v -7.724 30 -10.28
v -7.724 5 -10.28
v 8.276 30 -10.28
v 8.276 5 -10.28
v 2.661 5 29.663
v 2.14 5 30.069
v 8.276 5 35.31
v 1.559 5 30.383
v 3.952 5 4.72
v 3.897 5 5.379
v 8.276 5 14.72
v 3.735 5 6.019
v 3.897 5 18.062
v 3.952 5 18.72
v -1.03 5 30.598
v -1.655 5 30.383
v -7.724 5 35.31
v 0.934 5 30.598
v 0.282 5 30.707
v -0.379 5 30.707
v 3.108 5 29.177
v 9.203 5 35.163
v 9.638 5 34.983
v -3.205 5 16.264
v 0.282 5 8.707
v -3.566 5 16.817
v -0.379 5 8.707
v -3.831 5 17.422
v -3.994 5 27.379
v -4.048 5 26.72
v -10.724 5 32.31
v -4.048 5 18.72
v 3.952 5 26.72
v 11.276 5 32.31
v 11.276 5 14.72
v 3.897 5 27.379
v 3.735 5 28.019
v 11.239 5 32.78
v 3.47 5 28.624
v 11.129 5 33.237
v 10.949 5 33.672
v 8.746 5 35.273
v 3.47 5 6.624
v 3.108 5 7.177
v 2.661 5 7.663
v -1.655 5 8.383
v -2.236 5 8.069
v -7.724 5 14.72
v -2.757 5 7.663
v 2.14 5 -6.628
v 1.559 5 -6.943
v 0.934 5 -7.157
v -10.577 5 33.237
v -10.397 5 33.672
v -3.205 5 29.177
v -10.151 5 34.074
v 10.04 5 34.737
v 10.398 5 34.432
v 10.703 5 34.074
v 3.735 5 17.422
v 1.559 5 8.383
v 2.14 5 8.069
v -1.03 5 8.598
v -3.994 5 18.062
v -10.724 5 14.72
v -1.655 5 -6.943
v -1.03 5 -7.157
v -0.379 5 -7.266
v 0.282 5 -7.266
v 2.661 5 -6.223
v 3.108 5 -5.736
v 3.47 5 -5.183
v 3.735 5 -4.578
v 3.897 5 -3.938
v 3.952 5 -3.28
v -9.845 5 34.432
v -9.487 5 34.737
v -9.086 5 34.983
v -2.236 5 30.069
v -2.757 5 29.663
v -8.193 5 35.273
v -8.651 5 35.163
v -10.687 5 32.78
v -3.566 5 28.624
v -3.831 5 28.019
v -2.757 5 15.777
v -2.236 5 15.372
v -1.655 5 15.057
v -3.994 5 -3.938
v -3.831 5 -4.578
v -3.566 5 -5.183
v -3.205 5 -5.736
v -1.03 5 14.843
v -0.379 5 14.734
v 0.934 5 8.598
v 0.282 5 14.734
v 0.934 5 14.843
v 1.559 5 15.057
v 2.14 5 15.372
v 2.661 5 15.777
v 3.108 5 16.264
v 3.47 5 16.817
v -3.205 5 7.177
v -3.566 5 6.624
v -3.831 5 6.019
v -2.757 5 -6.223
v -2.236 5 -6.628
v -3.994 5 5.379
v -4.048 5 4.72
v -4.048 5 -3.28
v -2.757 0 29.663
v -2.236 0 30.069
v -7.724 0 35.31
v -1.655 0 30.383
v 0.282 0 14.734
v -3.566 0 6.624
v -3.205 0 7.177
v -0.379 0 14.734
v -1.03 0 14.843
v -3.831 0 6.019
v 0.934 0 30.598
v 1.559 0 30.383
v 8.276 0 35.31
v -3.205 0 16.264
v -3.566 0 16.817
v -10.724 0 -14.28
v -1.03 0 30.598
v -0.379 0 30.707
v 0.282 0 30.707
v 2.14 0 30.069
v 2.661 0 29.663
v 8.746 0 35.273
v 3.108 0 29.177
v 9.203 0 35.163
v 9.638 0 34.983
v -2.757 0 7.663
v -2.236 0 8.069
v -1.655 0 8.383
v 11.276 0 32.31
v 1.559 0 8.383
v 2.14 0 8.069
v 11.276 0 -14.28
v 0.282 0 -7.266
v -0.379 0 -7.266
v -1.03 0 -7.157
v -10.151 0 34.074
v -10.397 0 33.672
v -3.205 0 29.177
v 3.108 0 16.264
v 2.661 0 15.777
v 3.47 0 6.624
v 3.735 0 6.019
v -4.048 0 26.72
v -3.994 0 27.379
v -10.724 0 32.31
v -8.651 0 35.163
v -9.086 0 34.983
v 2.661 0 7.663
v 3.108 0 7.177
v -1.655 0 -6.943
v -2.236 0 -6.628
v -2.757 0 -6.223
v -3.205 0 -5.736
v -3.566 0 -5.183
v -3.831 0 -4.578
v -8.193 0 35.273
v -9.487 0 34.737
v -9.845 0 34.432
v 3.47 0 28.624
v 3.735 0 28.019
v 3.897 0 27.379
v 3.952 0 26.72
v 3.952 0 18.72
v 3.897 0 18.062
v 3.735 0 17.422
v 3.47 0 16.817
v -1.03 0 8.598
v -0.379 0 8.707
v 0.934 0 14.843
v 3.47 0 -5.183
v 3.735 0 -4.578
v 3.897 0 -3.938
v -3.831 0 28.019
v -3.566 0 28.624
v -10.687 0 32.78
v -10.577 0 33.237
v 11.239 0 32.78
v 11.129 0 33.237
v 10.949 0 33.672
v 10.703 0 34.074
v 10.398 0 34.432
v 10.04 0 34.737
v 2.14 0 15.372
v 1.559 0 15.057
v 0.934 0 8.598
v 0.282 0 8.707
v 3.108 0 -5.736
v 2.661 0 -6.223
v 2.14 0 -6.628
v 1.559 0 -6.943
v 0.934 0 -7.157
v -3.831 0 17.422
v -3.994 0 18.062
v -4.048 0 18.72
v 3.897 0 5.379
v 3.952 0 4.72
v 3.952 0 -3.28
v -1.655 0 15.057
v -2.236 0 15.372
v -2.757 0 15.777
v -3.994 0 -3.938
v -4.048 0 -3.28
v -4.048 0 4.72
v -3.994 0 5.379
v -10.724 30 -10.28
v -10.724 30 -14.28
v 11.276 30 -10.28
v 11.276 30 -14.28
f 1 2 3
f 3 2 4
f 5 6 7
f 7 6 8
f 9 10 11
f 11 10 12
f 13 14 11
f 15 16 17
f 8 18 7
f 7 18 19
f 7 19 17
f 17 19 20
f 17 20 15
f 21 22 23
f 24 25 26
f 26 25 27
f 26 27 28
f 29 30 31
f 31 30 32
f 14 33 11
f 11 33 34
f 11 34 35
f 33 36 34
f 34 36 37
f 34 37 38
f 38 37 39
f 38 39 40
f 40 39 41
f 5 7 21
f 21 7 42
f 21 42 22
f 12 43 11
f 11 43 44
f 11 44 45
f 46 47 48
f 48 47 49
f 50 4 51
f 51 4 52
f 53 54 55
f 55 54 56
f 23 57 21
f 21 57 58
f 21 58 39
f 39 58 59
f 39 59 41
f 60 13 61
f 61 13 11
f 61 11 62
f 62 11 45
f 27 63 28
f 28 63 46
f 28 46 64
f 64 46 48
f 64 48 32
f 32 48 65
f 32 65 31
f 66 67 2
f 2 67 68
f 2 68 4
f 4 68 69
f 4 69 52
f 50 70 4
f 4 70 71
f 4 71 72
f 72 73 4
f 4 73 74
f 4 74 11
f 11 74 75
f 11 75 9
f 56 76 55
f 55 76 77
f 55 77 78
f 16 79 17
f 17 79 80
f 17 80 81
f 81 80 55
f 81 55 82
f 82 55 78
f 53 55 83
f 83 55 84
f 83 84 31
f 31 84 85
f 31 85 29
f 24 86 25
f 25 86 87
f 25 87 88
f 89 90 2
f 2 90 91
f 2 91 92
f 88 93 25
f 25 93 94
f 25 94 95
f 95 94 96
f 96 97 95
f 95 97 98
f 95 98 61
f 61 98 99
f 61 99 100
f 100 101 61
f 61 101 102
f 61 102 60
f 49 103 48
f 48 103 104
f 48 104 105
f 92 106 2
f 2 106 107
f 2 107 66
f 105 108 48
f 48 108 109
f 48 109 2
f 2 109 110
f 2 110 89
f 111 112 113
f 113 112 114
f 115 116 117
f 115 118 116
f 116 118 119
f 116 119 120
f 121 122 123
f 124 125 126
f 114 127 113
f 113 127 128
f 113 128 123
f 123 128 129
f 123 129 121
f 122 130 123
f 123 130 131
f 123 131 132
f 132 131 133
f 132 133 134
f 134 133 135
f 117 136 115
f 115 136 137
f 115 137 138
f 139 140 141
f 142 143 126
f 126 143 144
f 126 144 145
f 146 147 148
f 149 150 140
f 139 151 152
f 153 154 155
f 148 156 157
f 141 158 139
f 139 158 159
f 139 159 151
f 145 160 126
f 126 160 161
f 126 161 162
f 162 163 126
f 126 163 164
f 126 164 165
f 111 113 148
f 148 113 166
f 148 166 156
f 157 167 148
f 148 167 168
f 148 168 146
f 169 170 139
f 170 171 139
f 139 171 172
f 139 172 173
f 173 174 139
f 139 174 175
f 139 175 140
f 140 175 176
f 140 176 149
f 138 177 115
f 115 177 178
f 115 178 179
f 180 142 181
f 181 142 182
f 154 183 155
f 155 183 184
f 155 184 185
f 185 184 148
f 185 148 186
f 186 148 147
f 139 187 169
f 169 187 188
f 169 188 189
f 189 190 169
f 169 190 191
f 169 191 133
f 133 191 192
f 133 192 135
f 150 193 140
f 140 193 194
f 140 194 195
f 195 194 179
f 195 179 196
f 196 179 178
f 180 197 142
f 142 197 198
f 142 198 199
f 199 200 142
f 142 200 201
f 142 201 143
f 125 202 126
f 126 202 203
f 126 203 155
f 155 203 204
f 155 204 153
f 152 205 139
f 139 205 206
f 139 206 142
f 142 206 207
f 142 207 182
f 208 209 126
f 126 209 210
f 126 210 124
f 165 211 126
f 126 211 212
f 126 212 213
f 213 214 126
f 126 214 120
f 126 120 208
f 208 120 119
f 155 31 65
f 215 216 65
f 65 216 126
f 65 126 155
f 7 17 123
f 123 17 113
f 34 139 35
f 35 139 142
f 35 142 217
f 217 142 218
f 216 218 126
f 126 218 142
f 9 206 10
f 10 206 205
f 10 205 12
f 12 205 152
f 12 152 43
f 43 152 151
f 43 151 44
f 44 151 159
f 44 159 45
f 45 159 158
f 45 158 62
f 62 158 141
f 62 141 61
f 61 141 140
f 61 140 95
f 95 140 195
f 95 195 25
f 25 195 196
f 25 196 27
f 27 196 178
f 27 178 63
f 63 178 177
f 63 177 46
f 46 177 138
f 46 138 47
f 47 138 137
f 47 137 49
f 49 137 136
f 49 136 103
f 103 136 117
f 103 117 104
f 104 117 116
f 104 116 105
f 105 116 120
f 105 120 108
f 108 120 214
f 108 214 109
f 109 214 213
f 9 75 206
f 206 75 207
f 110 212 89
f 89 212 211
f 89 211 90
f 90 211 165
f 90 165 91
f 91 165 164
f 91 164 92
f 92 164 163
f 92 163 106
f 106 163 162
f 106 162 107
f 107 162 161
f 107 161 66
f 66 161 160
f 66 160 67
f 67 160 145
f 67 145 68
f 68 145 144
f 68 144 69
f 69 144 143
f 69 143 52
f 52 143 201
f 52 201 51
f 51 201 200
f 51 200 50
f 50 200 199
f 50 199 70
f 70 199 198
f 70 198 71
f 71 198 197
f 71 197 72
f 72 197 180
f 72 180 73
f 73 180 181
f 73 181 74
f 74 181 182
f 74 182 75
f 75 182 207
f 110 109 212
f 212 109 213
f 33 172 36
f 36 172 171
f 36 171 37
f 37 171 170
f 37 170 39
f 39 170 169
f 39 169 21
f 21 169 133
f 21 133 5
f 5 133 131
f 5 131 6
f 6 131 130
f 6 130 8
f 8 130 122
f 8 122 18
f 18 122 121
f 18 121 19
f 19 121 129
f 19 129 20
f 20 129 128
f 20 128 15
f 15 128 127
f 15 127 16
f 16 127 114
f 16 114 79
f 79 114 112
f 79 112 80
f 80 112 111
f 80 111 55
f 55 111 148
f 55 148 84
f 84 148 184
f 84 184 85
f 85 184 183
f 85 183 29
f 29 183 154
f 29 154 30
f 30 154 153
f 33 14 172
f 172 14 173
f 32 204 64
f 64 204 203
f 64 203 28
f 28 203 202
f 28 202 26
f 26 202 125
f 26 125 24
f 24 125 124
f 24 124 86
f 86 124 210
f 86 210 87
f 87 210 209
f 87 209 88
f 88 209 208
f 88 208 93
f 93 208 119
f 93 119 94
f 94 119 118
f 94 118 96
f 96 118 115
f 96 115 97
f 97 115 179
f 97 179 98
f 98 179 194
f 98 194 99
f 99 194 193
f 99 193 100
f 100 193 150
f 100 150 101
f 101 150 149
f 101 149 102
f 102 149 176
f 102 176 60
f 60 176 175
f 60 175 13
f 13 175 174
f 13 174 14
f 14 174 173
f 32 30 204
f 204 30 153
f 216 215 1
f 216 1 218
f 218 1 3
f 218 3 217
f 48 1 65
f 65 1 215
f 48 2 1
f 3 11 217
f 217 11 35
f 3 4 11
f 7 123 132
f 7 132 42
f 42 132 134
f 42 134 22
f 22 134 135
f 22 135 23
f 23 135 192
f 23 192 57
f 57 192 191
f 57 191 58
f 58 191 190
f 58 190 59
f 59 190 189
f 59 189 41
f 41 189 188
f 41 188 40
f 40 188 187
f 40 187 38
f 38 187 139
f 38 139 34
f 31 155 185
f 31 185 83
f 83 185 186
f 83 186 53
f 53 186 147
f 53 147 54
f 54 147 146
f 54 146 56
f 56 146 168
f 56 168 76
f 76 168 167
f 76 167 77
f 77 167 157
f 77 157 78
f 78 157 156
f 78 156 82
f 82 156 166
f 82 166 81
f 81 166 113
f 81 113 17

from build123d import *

# Parameters (mm, degrees)
BOSS_EXTRUDE1_DEPTH = 5
SKETCH2_W           = 22
SKETCH2_H           = 4
BOSS_EXTRUDE2_DEPTH = 30
BOSS_EXTRUDE3_START = -10.723792
BOSS_EXTRUDE3_DEPTH = 3
BOSS_EXTRUDE4_START = 11.276208
BOSS_EXTRUDE4_DEPTH = 3
FILLET1_R           = 3


with BuildPart() as part:
    # Sketch1 → Boss-Extrude1 (new body)
    with BuildSketch(Plane(origin=(0, 0, 0), x_dir=(1, 0, 0), z_dir=(0, 1, 0))):
        Polygon((0.27620797, 14.279620853), (11.27620797, 14.279620853), (11.27620797, -35.310215712), (-10.72379203, -35.310215712), (-10.72379203, 14.279620853), align=None)
        with BuildLine():
            Line((-4.048192251, -4.720379147), (-4.048192251, 3.279620853))
            ThreePointArc((-4.048192251, 3.279620853), (-0.048192251, 7.279620853), (3.951807749, 3.279620853))
            Line((3.951807749, 3.279620853), (3.951807749, -4.720379147))
            ThreePointArc((3.951807749, -4.720379147), (-0.048192251, -8.720379147), (-4.048192251, -4.720379147))
        make_face(mode=Mode.SUBTRACT)
        with BuildLine():
            Line((-4.048192251, -26.720379147), (-4.048192251, -18.720379147))
            ThreePointArc((-4.048192251, -18.720379147), (-0.048192251, -14.720379147), (3.951807749, -18.720379147))
            Line((3.951807749, -18.720379147), (3.951807749, -26.720379147))
            ThreePointArc((3.951807749, -26.720379147), (-0.048192251, -30.720379147), (-4.048192251, -26.720379147))
        make_face(mode=Mode.SUBTRACT)
    extrude(amount=BOSS_EXTRUDE1_DEPTH)

    # Sketch2 → Boss-Extrude2 (add)
    with BuildSketch(Plane(origin=(0, 0, 0), x_dir=(1, 0, 0), z_dir=(0, 1, 0))):
        with Locations((0.27620797, 12.279620853)):
            Rectangle(SKETCH2_W, SKETCH2_H)
    extrude(amount=BOSS_EXTRUDE2_DEPTH)

    # Sketch6 → Boss-Extrude3 (add)
    with BuildSketch(Plane(origin=(0, 0, 0), x_dir=(0, 0, -1), z_dir=(1, 0, 0)).offset(BOSS_EXTRUDE3_START)):
        Polygon((10.279620853, 30), (10.279620853, 5), (-14.720379147, 5), align=None)
    extrude(amount=BOSS_EXTRUDE3_DEPTH)

    # Sketch6<2> → Boss-Extrude4 (add)
    with BuildSketch(Plane(origin=(0, 0, 0), x_dir=(0, 0, -1), z_dir=(1, 0, 0)).offset(BOSS_EXTRUDE4_START)):
        Polygon((10.279620853, 30), (10.279620853, 5), (-14.720379147, 5), align=None)
    extrude(amount=-BOSS_EXTRUDE4_DEPTH)

    # Fillet1
    fillet1_edges = [part.edges().sort_by_distance(p)[0] for p in [
        (11.27620797, 2.5, 35.310215712),
        (-10.72379203, 2.5, 35.310215712),
    ]]
    fillet(fillet1_edges, radius=FILLET1_R)


solid = part.part
